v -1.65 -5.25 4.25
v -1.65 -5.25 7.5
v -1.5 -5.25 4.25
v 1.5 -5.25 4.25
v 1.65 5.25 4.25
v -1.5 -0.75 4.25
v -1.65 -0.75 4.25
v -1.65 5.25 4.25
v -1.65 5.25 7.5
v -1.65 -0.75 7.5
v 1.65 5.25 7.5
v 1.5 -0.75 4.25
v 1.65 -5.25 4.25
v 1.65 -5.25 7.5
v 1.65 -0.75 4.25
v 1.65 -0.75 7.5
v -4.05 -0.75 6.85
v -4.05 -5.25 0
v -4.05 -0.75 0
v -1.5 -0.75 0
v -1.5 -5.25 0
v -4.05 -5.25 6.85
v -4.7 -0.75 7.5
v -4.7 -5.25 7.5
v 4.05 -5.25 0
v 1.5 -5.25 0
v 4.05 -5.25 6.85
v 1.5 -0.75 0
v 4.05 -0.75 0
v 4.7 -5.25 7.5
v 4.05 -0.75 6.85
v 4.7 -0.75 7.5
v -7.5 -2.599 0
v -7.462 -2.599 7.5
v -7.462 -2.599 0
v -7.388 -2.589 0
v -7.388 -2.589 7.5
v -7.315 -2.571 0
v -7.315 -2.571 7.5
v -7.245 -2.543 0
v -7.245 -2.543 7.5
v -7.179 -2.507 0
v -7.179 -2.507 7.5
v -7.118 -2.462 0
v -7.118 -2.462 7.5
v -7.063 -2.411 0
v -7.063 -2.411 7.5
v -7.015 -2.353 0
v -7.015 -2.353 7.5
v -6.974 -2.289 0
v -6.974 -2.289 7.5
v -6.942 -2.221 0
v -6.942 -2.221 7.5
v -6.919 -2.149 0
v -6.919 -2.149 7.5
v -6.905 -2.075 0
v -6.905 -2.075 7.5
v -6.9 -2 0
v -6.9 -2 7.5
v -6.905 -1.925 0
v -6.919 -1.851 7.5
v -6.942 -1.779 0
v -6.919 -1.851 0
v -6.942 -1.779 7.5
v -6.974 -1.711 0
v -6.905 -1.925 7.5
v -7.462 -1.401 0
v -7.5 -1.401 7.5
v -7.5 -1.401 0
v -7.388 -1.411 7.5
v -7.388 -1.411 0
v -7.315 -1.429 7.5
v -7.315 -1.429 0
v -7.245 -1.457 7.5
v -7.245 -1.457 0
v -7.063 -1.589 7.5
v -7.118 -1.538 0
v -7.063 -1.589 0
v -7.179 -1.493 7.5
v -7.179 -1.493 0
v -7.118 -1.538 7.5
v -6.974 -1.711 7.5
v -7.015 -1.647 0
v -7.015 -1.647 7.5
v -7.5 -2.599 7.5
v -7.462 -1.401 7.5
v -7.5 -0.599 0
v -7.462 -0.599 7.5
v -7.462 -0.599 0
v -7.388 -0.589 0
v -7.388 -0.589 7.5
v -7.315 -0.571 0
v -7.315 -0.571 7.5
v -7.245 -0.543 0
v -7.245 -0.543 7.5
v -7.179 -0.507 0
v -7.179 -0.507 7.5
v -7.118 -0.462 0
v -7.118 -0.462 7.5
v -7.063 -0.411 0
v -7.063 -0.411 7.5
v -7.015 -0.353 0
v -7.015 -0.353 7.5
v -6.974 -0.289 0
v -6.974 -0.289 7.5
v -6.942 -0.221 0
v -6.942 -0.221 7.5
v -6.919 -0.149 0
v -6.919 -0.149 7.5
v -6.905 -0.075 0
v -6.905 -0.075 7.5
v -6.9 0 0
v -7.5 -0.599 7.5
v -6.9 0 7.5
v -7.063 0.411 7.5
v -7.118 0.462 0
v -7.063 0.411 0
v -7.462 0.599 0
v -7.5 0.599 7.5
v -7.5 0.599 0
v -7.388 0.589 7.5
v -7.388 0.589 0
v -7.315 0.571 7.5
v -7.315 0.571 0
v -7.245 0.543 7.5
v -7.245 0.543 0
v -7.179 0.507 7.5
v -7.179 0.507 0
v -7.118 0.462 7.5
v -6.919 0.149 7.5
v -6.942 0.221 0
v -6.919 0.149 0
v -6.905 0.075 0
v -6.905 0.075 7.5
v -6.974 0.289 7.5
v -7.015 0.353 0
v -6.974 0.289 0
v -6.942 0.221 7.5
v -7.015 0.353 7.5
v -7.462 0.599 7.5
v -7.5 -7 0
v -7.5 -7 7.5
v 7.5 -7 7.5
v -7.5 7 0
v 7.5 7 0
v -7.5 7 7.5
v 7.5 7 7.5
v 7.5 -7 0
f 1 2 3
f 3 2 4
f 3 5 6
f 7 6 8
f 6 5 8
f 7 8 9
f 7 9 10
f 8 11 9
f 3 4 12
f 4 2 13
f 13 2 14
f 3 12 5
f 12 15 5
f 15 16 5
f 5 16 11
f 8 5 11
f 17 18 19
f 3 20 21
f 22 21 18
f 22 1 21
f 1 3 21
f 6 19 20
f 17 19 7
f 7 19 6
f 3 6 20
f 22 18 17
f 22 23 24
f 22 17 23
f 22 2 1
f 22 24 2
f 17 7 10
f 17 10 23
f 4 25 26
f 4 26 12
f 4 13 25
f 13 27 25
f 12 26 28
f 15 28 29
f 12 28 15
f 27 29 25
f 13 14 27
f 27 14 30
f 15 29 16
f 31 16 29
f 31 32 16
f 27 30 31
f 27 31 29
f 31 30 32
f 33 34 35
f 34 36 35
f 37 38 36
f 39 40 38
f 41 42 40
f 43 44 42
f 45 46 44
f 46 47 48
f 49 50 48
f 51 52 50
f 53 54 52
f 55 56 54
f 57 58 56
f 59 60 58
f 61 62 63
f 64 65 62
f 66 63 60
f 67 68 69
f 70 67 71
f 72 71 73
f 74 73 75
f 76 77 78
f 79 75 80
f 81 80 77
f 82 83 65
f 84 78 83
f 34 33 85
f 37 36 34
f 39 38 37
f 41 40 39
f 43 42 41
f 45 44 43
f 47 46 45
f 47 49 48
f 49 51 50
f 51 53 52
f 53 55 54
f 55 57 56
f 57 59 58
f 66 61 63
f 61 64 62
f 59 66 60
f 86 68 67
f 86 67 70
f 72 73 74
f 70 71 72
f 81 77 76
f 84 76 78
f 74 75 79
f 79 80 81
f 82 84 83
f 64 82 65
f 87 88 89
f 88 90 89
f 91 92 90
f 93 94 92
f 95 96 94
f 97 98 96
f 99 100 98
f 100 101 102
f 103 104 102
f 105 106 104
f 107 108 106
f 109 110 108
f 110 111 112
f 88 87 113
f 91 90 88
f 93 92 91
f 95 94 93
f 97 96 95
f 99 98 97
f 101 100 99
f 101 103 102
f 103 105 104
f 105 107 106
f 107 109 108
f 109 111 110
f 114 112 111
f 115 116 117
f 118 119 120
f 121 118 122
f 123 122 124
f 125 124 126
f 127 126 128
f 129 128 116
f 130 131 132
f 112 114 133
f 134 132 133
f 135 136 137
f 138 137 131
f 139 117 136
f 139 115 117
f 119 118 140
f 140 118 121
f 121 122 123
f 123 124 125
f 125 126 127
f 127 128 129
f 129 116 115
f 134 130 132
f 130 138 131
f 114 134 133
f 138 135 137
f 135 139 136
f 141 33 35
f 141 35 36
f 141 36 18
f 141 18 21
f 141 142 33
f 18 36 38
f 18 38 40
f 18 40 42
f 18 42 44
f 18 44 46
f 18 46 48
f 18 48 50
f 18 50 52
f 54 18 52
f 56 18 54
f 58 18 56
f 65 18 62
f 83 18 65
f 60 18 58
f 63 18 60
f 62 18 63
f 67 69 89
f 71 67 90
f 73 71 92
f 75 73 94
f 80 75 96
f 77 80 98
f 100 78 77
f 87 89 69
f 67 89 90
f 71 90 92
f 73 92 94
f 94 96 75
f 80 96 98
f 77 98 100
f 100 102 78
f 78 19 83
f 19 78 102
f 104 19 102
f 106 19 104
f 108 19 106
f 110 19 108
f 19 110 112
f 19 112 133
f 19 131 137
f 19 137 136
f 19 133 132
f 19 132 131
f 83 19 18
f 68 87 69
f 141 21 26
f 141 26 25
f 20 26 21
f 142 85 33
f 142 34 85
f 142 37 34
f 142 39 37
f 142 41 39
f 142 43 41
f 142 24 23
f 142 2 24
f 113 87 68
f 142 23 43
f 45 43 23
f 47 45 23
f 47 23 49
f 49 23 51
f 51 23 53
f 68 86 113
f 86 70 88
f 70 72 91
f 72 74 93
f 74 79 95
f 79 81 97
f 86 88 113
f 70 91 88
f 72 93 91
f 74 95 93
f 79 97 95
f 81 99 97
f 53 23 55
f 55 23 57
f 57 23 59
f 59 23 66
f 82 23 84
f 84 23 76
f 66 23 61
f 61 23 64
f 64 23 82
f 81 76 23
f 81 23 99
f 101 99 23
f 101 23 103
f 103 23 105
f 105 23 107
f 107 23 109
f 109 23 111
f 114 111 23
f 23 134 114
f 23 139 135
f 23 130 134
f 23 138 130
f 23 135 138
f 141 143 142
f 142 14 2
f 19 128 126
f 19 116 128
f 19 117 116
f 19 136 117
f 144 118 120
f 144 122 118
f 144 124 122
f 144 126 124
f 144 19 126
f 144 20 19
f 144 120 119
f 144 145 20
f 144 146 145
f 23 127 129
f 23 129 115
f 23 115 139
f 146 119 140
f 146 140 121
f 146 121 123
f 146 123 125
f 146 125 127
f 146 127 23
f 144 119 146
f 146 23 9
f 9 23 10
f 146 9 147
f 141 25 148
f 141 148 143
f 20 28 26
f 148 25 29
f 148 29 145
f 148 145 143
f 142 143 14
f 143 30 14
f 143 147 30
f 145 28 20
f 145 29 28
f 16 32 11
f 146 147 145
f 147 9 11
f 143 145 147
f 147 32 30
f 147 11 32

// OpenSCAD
$fn = 50;

difference() {
	union() {
		translate(v = [0, -5, 0]) {
			rotate(a = [0, 0, 0]) {
				difference() {
					union() {
						translate(v = [-7.5, -2.0, 0]) {
							cube(size = [15.0, 14.0, 7.5]);
						}
					}
					union() {
						translate(v = [-1.65, -0.25, 4.25]) {
							cube(size = [3.3, 10.5, 3.35]);
						}
						translate(v = [0, 4.25, 0]) {
							rotate(a = [90, 0, 0]) {
								linear_extrude(height = 4.5) {
									polygon(points = [[-1.5, -0.1], [-4.05, -0.1], [-4.05, 6.85], [-4.8, 7.6], [-0.75, 7.6], [-1.5, 6.85]]);
								}
							}
						}
						translate(v = [0, 4.25, 0]) {
							rotate(a = [90, 0, 0]) {
								linear_extrude(height = 4.5) {
									polygon(points = [[1.5, -0.1], [4.05, -0.1], [4.05, 6.85], [4.8, 7.6], [0.75, 7.6], [1.5, 6.85]]);
								}
							}
						}
						translate(v = [-7.5, 3, -0.1]) {
							cylinder(h = 7.7, r = 0.6);
						}
						translate(v = [-7.5, 5, -0.1]) {
							cylinder(h = 7.7, r = 0.6);
						}
					}
				}
			}
		}
	}
	union();
}
